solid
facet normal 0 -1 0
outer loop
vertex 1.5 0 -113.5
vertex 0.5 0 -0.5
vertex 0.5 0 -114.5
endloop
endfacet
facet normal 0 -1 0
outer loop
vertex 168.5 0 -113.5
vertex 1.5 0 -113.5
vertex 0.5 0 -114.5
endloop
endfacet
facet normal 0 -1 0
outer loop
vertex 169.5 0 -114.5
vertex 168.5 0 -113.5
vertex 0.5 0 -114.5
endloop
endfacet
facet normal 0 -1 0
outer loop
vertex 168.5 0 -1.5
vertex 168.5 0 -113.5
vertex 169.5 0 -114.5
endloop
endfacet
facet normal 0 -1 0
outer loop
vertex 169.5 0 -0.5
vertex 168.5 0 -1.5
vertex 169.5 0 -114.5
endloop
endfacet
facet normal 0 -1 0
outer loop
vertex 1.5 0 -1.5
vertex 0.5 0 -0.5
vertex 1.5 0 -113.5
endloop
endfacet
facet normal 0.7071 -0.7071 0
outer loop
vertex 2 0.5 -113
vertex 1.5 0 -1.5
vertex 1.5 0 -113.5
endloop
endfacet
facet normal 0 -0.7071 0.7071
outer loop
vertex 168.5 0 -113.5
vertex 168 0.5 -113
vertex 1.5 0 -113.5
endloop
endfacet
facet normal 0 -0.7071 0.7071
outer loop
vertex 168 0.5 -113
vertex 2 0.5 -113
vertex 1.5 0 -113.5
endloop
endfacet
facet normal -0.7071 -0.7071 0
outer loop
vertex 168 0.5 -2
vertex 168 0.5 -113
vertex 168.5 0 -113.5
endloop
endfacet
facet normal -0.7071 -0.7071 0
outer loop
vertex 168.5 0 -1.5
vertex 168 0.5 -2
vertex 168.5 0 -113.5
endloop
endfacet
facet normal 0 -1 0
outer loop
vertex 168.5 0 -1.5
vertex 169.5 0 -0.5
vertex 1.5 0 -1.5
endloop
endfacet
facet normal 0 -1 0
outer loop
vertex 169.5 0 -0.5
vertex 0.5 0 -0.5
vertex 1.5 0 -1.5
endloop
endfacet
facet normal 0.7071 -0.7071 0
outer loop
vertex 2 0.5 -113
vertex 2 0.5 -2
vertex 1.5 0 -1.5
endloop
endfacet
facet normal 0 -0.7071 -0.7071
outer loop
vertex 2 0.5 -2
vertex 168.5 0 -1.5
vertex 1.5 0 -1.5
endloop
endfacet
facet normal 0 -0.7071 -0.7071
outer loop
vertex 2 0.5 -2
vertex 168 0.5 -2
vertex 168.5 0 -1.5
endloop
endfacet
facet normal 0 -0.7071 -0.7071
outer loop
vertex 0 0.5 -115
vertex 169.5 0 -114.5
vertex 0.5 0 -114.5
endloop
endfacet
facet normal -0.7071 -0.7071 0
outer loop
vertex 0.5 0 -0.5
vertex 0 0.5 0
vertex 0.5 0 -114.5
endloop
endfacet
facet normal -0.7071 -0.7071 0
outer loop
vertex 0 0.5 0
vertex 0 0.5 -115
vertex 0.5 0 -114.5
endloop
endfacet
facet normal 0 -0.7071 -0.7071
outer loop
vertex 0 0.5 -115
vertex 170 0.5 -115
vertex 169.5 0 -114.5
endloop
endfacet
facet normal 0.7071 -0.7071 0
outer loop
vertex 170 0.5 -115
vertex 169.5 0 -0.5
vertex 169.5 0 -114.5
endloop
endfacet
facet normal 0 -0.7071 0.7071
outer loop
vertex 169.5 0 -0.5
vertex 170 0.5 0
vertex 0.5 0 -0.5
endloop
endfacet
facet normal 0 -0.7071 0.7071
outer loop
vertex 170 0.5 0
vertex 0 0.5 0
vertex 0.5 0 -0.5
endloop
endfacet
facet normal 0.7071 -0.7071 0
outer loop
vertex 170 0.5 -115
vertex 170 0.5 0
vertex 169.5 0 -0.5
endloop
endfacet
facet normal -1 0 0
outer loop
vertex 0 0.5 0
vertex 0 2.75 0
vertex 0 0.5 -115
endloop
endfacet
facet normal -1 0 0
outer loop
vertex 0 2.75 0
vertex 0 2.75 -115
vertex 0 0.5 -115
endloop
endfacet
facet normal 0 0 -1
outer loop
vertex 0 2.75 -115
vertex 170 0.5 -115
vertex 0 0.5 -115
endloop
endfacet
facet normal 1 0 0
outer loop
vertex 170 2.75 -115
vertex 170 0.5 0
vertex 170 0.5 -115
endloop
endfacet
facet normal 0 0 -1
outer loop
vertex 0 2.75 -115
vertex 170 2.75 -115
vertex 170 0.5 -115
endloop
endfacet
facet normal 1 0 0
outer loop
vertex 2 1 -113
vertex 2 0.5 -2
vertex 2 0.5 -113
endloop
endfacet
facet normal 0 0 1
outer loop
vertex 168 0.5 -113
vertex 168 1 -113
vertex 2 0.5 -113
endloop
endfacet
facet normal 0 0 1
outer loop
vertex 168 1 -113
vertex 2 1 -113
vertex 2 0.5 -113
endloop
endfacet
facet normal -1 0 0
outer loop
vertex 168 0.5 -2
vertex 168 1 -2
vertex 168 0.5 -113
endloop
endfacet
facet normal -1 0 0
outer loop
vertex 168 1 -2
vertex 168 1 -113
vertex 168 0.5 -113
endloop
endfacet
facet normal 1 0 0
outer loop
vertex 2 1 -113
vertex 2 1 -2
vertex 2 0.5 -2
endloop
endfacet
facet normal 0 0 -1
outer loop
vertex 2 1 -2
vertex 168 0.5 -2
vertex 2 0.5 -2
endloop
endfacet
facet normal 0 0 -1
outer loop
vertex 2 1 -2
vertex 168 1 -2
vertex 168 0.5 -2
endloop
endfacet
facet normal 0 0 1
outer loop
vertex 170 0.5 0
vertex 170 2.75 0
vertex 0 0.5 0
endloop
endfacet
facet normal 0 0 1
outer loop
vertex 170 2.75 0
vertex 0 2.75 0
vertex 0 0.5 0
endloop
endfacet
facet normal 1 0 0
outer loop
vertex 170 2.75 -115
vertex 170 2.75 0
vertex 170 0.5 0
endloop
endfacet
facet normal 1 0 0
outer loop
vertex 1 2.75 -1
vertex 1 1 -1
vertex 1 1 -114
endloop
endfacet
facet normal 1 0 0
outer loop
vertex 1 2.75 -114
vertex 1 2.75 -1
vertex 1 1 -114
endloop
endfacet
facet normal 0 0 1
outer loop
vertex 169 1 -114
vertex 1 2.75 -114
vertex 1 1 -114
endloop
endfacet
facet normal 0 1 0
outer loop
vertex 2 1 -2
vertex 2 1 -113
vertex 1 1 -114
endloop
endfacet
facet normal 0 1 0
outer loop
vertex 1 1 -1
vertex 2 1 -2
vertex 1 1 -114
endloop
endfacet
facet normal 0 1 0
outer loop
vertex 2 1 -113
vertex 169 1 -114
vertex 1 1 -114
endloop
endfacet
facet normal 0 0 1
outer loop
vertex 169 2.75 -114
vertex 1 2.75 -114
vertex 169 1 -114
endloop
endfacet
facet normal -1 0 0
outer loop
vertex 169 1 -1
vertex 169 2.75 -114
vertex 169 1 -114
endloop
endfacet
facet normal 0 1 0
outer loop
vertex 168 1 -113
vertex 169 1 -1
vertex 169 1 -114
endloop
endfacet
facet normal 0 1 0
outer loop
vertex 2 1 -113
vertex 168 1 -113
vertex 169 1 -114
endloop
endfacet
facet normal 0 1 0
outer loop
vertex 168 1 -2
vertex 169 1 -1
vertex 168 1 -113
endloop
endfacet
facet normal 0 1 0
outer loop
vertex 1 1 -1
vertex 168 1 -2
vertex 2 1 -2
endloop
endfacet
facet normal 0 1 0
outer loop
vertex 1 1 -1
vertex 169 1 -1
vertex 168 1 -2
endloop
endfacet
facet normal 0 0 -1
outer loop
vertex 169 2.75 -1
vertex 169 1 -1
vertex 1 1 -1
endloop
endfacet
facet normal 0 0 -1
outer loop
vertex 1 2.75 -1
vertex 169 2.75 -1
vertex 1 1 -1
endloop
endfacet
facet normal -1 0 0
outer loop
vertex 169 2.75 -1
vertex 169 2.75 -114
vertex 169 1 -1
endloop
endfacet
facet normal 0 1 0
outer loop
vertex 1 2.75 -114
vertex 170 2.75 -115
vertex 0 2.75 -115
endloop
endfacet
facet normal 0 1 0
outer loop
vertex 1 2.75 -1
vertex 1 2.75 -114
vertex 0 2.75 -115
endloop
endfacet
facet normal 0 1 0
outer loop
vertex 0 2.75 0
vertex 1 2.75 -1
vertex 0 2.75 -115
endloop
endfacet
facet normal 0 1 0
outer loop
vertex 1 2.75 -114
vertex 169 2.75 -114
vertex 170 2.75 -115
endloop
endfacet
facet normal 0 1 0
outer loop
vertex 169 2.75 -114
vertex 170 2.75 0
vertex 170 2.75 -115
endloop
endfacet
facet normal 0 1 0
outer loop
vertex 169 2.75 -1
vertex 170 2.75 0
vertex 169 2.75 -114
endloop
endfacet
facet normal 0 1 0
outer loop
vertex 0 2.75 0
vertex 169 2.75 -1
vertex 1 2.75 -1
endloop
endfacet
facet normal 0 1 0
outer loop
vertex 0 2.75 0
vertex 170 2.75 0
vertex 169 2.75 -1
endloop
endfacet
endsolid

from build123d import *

# Parameters (mm, degrees)
SKETCH1_W           = 170
SKETCH1_H           = 115
SKETCH1_W_2         = 166
SKETCH1_H_2         = 111
BOSS_EXTRUDE1_DEPTH = 2.75
SKETCH2_W           = 168
SKETCH2_H           = 113
CUT_EXTRUDE1_DEPTH  = 1.75
CHAMFER1_SIZE       = 0.5


with BuildPart() as part:
    # Sketch1 → Boss-Extrude1 (new body)
    with BuildSketch(Plane(origin=(0, 0, 0), x_dir=(1, 0, 0), z_dir=(0, 1, 0))):
        with Locations((85, 57.5)):
            Rectangle(SKETCH1_W, SKETCH1_H)
        with Locations((85, 57.5)):
            Rectangle(SKETCH1_W_2, SKETCH1_H_2, mode=Mode.SUBTRACT)
    extrude(amount=BOSS_EXTRUDE1_DEPTH)

    # Sketch2 → Cut-Extrude1 (cut)
    with BuildSketch(Plane(origin=(0, 2.75, 0), x_dir=(1, 0, 0), z_dir=(0, 1, 0))):
        with Locations((85, 57.5)):
            Rectangle(SKETCH2_W, SKETCH2_H)
    extrude(amount=-CUT_EXTRUDE1_DEPTH, mode=Mode.SUBTRACT)

    # Chamfer1
    chamfer1_edges = [part.edges().sort_by_distance(p)[0] for p in [
        (2, 0, -57.5),
        (85, 0, -2),
        (168, 0, -57.5),
        (85, 0, -113),
        (85, 0, -115),
        (170, 0, -57.5),
        (85, 0, 0),
        (0, 0, -57.5),
    ]]
    chamfer(chamfer1_edges, length=CHAMFER1_SIZE)


solid = part.part
